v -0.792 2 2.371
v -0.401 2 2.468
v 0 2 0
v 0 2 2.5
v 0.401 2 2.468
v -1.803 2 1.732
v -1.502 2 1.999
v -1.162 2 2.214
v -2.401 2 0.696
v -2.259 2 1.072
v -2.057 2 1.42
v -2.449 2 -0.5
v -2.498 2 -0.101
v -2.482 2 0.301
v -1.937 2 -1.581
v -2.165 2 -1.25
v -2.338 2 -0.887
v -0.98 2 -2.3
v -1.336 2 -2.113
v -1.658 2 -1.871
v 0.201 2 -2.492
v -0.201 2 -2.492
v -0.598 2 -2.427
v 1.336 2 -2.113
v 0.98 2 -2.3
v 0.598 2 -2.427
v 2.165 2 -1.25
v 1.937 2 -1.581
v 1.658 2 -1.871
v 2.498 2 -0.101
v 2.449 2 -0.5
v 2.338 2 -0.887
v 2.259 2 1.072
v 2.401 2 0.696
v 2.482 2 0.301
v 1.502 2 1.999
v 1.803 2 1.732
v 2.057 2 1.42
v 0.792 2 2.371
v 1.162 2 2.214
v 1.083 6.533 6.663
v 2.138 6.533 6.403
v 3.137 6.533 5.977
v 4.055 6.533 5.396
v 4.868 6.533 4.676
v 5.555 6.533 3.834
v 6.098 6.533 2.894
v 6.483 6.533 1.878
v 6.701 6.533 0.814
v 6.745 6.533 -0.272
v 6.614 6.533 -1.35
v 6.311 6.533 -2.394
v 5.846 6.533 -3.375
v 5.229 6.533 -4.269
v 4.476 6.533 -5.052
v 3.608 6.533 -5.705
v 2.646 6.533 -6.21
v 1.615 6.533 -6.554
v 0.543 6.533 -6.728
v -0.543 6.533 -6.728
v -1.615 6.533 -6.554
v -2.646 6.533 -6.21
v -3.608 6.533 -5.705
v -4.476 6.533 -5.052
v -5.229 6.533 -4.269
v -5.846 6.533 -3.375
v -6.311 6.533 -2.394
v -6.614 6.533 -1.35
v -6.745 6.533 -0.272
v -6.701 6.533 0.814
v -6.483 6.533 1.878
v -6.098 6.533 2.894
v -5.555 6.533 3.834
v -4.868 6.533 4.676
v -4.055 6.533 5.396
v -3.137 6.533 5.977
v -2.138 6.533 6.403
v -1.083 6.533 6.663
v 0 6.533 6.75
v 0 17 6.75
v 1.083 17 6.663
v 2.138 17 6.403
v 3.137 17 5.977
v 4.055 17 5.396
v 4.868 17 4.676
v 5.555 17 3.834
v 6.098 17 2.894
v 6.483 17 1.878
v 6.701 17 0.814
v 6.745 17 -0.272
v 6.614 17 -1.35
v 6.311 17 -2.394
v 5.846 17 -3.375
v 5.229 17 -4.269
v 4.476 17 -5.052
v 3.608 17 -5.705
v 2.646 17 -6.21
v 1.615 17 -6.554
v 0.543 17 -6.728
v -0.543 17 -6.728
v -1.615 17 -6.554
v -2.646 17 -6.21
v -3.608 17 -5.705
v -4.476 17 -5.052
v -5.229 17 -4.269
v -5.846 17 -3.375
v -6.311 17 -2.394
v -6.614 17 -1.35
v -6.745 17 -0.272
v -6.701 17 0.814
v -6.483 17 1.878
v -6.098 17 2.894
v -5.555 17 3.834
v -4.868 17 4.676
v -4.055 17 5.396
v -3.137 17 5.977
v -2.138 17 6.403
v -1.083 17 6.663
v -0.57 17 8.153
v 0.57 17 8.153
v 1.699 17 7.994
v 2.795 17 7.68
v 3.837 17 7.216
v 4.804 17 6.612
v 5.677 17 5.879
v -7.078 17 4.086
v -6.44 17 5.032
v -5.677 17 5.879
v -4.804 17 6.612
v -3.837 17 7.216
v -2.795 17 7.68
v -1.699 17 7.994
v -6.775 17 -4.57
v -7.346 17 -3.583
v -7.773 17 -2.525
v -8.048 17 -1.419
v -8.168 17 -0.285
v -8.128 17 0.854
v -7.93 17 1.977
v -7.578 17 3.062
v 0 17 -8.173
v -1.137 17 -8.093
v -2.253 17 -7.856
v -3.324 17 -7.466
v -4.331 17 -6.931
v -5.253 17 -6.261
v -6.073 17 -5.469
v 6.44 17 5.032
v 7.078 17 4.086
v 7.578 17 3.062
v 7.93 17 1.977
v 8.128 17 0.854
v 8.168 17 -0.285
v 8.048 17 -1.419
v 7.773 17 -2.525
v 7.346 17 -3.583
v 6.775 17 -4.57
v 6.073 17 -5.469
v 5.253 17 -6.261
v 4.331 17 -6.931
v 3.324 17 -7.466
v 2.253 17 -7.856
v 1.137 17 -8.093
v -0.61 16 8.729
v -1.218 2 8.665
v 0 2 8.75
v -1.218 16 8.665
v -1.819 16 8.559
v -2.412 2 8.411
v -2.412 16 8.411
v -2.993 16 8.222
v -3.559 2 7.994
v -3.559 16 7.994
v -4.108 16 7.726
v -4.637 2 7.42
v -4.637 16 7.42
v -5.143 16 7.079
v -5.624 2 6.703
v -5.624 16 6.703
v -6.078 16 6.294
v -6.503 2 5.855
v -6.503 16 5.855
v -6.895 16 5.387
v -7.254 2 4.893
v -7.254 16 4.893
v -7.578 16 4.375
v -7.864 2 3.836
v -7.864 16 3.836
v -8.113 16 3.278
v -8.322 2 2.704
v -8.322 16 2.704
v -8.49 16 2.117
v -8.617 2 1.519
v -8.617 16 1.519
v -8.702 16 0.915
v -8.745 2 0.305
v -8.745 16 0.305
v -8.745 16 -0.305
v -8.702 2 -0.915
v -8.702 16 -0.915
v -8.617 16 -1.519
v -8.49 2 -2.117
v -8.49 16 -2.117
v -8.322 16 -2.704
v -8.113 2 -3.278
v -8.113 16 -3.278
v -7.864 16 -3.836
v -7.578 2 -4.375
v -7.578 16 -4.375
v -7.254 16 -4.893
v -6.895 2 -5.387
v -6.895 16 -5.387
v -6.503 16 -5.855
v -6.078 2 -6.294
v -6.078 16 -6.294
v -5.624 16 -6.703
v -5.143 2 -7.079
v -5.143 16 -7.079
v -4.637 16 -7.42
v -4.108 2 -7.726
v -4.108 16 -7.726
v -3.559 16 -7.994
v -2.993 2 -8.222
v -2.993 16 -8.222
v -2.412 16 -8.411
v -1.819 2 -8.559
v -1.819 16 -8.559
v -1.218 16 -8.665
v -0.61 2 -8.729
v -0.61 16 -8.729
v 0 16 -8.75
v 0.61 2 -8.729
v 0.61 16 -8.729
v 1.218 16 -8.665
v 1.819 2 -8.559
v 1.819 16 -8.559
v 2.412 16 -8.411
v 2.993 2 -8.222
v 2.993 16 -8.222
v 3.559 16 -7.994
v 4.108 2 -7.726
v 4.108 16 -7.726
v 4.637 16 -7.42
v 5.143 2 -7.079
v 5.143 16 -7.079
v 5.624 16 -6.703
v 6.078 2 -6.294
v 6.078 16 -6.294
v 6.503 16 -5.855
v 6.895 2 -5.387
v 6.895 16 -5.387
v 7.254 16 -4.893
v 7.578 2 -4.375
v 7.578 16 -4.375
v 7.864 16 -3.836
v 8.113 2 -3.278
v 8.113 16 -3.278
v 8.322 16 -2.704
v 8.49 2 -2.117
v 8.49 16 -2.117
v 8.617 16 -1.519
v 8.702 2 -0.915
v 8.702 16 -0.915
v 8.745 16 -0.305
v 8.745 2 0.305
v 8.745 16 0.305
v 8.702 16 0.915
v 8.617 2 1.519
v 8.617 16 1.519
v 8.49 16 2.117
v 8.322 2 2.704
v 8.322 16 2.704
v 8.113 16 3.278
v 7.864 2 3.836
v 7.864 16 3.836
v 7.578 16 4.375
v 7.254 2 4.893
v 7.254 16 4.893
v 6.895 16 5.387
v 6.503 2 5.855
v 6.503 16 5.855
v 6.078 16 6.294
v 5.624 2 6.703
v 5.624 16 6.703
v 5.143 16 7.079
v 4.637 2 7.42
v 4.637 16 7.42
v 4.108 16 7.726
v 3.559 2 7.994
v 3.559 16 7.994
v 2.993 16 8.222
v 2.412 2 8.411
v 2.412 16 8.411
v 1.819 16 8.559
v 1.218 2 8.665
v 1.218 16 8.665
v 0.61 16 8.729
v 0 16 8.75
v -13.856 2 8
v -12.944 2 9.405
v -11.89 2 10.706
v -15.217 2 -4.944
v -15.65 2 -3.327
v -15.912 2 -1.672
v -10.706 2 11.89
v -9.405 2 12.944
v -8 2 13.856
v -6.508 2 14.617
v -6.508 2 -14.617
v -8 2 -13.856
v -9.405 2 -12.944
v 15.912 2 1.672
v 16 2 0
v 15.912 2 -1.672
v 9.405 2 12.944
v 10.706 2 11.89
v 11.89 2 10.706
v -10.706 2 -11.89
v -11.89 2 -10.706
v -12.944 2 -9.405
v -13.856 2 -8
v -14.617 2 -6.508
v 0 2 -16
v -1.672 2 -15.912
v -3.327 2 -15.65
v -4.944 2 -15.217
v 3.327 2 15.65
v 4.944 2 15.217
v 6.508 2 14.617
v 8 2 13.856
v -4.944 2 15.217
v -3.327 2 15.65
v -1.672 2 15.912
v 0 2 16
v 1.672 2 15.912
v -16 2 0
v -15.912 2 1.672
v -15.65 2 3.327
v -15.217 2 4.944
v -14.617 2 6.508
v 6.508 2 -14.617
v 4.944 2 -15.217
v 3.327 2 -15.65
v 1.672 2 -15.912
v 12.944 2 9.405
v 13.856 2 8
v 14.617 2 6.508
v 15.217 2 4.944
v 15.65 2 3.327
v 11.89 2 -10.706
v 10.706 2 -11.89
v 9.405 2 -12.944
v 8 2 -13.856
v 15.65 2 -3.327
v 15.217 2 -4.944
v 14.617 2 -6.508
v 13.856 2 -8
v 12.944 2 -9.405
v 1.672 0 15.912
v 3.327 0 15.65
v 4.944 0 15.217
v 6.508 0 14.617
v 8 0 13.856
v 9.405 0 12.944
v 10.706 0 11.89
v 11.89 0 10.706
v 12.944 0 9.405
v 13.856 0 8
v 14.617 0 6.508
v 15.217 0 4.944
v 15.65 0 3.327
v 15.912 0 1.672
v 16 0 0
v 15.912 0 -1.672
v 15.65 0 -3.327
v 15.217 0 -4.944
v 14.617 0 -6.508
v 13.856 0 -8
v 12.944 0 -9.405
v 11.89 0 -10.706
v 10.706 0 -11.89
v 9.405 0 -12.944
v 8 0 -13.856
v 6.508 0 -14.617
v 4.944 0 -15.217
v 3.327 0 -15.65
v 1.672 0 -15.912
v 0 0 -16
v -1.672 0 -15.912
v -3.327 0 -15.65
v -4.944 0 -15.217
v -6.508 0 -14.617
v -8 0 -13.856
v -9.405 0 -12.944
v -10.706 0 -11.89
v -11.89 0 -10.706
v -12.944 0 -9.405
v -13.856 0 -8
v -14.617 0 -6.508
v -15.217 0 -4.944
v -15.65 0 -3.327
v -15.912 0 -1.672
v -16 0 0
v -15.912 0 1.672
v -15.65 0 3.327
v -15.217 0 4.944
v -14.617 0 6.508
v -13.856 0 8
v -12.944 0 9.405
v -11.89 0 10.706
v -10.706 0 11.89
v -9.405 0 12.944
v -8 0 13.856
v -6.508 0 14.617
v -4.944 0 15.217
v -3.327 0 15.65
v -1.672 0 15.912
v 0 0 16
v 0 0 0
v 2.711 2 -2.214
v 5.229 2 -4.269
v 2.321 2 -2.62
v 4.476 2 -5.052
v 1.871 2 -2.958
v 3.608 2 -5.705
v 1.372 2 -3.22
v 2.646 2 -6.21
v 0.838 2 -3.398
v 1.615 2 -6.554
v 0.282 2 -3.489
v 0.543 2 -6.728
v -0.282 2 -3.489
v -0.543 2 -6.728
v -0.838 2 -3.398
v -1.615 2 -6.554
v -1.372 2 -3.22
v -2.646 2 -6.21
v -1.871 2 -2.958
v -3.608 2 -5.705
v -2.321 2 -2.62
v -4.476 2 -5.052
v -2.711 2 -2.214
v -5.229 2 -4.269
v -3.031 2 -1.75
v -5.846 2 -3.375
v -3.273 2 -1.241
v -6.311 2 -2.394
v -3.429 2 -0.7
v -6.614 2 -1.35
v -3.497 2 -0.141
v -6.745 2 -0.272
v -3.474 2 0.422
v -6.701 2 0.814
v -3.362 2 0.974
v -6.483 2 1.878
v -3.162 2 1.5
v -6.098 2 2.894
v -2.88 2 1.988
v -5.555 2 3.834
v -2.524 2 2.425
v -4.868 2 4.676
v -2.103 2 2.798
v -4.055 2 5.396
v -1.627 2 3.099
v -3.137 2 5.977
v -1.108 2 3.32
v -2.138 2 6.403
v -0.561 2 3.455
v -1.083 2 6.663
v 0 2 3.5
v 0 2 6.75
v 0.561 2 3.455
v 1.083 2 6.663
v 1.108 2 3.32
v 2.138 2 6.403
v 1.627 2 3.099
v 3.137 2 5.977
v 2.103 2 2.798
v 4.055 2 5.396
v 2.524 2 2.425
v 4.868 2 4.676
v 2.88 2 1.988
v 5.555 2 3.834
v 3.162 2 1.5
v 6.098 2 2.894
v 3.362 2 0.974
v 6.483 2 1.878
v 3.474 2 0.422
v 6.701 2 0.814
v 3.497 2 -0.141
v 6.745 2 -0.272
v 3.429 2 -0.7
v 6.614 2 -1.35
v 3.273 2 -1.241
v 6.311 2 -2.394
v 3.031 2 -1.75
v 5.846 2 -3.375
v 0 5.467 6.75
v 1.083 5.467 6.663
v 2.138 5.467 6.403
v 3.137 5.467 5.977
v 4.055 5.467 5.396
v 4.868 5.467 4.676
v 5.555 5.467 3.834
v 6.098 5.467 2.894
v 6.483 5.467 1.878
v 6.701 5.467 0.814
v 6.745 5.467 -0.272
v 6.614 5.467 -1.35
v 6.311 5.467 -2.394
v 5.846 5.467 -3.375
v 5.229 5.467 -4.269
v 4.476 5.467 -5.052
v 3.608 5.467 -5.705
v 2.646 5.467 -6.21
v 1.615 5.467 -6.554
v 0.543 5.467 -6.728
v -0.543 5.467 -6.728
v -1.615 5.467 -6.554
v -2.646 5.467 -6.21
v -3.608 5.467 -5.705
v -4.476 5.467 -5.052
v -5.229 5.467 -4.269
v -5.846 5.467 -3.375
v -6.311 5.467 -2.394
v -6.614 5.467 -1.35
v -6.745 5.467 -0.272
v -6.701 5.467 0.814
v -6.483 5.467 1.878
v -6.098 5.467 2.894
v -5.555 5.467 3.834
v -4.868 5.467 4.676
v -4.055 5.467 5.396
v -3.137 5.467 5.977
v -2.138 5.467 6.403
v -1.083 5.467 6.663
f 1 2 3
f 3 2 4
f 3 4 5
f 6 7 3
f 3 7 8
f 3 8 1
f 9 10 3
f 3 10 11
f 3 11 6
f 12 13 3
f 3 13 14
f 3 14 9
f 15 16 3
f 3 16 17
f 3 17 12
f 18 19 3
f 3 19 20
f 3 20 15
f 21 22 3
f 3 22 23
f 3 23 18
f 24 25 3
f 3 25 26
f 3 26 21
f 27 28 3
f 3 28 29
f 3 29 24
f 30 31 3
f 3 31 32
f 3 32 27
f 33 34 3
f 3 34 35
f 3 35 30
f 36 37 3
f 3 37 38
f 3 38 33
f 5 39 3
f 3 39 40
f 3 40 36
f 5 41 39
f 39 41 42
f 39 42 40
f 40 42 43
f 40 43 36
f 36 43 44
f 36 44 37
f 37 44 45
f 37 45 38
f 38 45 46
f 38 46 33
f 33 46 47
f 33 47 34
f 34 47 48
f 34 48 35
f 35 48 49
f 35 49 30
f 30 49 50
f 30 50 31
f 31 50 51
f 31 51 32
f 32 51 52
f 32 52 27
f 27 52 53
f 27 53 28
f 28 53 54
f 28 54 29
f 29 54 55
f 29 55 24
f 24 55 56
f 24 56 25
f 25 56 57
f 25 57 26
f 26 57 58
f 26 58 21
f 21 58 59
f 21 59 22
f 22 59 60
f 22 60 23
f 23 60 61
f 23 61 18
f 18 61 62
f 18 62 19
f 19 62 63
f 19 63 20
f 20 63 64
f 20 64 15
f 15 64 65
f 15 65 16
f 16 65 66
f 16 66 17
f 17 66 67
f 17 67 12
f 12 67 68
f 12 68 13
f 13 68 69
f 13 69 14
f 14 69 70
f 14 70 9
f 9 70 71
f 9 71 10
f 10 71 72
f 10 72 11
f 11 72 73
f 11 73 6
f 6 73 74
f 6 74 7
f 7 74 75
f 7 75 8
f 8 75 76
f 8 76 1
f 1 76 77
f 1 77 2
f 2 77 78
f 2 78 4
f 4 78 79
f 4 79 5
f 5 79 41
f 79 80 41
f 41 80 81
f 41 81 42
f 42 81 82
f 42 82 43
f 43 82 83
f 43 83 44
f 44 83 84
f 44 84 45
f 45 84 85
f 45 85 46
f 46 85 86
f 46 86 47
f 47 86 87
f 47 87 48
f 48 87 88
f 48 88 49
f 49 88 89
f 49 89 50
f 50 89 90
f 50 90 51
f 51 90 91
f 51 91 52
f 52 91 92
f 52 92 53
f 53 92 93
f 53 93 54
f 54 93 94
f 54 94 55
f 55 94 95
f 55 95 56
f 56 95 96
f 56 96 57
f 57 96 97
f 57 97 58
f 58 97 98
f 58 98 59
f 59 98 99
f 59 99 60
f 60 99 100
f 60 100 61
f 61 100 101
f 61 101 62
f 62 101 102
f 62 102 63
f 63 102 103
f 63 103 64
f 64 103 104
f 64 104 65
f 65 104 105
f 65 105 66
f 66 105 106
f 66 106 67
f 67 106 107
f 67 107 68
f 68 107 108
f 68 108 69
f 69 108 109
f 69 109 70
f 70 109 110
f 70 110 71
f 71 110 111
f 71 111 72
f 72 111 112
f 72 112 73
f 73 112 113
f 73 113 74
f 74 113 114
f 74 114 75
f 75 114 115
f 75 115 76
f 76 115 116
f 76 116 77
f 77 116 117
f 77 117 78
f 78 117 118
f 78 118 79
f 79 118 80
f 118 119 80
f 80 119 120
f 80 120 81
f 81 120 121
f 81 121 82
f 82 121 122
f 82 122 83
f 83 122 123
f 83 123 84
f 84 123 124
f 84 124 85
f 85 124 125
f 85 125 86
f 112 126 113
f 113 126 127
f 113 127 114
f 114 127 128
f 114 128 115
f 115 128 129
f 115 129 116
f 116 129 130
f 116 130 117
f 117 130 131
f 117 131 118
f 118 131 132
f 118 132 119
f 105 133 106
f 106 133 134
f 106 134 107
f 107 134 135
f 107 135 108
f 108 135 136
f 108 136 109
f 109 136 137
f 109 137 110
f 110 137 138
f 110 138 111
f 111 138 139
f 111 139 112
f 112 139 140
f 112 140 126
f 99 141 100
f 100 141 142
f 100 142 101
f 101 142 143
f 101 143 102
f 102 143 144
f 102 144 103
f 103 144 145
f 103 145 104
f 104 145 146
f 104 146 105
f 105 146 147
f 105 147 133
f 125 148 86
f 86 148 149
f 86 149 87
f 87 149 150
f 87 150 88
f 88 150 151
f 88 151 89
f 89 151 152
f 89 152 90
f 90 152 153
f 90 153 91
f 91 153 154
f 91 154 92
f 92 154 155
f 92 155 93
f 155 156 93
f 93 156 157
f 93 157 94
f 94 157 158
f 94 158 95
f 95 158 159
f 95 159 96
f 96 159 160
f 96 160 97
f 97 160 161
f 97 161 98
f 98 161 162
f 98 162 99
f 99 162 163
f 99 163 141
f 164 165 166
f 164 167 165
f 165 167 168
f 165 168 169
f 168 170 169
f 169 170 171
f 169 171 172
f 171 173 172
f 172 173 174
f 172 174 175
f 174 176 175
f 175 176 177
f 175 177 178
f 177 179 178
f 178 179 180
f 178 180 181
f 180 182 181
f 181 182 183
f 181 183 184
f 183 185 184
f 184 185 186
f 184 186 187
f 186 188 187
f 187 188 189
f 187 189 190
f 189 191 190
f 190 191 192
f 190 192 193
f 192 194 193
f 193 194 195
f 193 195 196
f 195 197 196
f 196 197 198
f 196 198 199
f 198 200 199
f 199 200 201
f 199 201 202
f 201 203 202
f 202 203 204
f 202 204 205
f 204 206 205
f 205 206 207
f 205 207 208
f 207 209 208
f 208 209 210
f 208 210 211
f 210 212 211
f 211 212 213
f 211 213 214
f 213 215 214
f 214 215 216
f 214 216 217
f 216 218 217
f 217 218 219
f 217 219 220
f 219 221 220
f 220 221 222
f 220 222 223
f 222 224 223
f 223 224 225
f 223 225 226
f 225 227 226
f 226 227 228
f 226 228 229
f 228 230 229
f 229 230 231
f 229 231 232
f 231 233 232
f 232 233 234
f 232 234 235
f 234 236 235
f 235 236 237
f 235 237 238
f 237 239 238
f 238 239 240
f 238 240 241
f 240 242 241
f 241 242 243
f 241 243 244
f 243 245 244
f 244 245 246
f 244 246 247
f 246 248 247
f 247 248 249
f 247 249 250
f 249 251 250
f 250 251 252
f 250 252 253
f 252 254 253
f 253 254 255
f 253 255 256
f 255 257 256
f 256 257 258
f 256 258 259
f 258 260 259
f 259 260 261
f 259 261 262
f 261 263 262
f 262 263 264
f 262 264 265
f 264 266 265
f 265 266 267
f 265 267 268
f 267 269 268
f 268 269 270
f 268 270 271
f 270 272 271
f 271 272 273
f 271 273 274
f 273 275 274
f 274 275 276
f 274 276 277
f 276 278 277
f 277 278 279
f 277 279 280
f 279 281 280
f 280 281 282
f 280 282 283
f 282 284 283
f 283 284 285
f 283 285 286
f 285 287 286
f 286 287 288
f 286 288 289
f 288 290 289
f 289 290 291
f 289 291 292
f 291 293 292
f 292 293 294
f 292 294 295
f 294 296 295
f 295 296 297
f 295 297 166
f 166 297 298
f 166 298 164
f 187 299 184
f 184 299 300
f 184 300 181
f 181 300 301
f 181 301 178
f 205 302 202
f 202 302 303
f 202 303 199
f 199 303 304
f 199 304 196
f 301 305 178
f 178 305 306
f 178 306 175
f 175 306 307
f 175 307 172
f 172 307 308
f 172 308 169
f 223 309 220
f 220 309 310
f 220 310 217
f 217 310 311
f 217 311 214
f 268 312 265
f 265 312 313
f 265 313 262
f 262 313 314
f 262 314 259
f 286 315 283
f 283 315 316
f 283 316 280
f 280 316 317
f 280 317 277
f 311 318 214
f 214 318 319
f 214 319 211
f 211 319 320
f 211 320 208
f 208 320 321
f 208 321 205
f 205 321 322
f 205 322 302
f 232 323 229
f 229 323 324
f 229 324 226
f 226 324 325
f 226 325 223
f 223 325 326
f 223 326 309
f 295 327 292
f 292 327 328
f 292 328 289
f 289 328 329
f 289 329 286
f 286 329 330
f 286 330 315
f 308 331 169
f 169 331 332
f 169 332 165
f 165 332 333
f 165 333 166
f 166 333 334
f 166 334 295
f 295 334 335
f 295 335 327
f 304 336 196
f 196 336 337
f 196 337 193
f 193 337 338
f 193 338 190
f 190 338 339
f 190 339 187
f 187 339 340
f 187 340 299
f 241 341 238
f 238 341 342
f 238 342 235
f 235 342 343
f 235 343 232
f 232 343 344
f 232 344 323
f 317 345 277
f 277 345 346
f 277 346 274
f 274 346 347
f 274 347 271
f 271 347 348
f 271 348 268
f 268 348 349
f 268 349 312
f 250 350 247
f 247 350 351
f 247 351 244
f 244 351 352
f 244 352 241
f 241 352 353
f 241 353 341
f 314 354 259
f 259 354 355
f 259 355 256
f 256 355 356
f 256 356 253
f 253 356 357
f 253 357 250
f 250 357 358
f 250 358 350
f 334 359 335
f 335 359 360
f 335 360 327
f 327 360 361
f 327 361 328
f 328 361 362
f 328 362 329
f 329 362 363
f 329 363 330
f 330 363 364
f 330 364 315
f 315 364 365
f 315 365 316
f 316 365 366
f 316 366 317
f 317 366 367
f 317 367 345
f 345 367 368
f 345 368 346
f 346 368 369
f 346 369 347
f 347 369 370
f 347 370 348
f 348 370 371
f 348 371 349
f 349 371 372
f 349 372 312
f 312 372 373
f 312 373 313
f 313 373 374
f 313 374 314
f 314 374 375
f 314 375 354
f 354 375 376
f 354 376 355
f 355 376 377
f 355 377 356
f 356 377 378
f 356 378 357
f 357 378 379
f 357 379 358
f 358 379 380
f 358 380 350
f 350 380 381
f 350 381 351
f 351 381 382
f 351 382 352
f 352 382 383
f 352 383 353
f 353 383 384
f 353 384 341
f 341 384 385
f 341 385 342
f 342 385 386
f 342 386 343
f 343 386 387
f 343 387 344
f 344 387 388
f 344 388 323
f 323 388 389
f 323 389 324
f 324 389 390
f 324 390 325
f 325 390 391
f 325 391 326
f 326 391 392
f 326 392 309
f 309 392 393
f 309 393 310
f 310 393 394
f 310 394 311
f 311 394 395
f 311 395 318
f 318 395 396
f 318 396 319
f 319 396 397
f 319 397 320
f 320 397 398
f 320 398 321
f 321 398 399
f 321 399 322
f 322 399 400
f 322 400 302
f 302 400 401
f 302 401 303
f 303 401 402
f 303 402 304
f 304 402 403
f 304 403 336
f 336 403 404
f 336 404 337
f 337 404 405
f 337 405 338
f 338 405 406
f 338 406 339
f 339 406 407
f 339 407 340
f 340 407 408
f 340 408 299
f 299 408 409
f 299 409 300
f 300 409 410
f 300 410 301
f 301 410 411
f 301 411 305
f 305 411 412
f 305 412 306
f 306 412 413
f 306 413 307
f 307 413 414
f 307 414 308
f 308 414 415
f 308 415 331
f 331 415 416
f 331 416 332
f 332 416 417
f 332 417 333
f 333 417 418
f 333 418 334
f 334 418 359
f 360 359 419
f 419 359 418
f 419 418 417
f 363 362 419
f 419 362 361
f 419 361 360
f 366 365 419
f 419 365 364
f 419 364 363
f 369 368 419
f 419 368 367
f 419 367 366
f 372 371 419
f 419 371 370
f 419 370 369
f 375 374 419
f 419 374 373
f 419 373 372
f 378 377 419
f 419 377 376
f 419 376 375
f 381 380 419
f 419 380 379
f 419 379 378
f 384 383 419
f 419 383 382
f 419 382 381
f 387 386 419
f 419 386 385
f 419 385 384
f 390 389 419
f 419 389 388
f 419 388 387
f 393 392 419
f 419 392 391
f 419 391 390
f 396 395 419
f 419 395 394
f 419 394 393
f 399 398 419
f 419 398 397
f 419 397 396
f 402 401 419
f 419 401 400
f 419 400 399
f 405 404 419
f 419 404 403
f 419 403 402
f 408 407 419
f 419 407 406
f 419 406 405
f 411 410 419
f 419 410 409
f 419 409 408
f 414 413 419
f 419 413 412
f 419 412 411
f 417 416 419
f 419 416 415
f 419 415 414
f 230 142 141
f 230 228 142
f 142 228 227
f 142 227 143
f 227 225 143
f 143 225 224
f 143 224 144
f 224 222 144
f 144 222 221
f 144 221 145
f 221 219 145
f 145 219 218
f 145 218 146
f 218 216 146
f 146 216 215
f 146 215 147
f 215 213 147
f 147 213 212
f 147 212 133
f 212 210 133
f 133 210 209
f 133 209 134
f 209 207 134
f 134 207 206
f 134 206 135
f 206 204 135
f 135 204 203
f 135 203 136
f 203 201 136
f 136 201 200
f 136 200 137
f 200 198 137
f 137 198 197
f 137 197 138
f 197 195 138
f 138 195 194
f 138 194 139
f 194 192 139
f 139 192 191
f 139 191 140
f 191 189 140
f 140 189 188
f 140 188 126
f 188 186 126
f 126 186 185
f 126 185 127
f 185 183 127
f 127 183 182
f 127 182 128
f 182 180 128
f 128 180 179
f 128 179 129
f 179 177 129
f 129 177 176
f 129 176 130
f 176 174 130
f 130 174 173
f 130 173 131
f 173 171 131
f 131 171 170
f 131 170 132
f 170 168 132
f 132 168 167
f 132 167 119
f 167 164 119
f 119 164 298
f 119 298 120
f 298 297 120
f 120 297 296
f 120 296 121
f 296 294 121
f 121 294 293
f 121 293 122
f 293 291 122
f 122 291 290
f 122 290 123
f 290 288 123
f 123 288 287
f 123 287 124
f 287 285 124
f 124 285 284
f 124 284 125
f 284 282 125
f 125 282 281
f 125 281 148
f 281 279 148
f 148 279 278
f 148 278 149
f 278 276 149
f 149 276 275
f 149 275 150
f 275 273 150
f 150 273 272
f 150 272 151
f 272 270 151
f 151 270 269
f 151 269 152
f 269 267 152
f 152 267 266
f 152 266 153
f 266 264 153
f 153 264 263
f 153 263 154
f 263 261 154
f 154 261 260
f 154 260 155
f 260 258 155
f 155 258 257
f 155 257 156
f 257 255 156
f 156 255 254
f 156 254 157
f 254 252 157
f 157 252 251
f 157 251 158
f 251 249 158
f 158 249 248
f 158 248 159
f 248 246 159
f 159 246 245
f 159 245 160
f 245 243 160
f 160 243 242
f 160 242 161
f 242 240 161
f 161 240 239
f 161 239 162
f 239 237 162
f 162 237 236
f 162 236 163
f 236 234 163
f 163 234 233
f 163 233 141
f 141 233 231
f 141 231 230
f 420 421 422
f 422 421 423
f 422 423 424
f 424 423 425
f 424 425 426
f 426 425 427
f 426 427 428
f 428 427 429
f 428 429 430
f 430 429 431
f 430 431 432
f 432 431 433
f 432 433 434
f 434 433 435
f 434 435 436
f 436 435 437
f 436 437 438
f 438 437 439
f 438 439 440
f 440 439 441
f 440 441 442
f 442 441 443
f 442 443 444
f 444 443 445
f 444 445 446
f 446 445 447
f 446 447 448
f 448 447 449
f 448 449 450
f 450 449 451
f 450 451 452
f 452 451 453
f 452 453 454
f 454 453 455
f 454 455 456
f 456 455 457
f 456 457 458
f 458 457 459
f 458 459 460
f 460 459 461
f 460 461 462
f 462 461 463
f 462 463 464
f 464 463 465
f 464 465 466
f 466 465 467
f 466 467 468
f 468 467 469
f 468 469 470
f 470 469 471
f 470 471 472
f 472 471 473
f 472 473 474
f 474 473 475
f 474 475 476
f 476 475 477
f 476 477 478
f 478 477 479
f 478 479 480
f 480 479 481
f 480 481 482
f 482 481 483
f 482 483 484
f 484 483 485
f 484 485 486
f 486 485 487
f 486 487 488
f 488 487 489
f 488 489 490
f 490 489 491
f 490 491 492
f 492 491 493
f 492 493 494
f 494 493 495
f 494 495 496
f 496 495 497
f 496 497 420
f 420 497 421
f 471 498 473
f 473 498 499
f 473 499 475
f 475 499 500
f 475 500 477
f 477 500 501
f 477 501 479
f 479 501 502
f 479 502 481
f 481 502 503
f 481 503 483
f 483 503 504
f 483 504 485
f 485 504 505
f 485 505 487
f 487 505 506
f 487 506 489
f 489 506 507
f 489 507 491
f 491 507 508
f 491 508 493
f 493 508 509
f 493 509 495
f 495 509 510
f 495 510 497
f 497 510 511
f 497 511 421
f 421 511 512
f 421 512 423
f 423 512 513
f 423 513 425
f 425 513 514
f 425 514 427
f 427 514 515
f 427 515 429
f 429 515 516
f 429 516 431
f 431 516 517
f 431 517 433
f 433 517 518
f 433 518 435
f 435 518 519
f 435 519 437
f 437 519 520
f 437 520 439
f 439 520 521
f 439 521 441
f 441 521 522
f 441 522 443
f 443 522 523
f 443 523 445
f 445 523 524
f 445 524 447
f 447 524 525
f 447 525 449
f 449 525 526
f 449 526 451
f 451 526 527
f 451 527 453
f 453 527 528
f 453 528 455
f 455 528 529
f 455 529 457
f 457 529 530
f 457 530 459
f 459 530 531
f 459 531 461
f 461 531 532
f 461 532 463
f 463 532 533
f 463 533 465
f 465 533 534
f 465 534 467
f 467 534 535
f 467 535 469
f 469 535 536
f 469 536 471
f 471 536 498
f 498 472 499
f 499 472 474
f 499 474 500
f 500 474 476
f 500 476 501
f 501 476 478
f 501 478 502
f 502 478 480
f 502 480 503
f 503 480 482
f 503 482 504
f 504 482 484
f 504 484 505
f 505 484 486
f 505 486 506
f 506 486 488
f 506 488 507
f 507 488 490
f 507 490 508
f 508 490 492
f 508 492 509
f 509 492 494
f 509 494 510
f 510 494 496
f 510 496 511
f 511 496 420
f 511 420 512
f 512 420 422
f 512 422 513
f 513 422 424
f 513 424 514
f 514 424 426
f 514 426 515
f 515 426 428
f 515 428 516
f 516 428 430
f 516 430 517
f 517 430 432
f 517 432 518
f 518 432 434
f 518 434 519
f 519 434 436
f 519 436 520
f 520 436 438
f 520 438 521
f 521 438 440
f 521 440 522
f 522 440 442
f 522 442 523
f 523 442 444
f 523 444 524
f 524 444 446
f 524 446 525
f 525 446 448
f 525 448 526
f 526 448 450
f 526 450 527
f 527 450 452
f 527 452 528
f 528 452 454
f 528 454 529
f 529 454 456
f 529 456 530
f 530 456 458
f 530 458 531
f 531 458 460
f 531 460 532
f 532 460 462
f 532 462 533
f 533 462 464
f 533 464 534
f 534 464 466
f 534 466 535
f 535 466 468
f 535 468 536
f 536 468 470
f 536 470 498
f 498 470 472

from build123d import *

# Parameters (mm, degrees)
CHAMFER1_SIZE  = 1
CHAMFER1_SIZE2 = 0.577350269


with BuildPart() as part:
    # Sketch1 → Revolve1 (revolve)
    with BuildSketch(Plane.XY, mode=Mode.PRIVATE) as revolve1_sk:
        Polygon((16, 2), (9, 2), (8.75, 2), (8.75, 17), (6.75, 17), (6.75, 6.533333333), (2.5, 2), (0, 2), (0, 0), (16, 0), align=None)
        Polygon((6.75, 2), (6.75, 5.466666667), (3.5, 2), align=None, mode=Mode.SUBTRACT)
    revolve(revolve1_sk.sketch.rotate(Axis((0, 21.623043933, 0), (0, -1, 0)), 90), axis=Axis((0, 21.623043933, 0), (0, -1, 0)))

    # Chamfer1
    chamfer1_edges = [part.edges().sort_by_distance(p)[0] for p in [
        (0, 17, -8.75),
    ]]
    chamfer1_side = [part.faces().sort_by_distance(p)[0] for p in [
        (0, 9.5, -8.75),
    ]]
    chamfer(chamfer1_edges, length=CHAMFER1_SIZE, length2=CHAMFER1_SIZE2, reference=chamfer1_side[0])


solid = part.part
